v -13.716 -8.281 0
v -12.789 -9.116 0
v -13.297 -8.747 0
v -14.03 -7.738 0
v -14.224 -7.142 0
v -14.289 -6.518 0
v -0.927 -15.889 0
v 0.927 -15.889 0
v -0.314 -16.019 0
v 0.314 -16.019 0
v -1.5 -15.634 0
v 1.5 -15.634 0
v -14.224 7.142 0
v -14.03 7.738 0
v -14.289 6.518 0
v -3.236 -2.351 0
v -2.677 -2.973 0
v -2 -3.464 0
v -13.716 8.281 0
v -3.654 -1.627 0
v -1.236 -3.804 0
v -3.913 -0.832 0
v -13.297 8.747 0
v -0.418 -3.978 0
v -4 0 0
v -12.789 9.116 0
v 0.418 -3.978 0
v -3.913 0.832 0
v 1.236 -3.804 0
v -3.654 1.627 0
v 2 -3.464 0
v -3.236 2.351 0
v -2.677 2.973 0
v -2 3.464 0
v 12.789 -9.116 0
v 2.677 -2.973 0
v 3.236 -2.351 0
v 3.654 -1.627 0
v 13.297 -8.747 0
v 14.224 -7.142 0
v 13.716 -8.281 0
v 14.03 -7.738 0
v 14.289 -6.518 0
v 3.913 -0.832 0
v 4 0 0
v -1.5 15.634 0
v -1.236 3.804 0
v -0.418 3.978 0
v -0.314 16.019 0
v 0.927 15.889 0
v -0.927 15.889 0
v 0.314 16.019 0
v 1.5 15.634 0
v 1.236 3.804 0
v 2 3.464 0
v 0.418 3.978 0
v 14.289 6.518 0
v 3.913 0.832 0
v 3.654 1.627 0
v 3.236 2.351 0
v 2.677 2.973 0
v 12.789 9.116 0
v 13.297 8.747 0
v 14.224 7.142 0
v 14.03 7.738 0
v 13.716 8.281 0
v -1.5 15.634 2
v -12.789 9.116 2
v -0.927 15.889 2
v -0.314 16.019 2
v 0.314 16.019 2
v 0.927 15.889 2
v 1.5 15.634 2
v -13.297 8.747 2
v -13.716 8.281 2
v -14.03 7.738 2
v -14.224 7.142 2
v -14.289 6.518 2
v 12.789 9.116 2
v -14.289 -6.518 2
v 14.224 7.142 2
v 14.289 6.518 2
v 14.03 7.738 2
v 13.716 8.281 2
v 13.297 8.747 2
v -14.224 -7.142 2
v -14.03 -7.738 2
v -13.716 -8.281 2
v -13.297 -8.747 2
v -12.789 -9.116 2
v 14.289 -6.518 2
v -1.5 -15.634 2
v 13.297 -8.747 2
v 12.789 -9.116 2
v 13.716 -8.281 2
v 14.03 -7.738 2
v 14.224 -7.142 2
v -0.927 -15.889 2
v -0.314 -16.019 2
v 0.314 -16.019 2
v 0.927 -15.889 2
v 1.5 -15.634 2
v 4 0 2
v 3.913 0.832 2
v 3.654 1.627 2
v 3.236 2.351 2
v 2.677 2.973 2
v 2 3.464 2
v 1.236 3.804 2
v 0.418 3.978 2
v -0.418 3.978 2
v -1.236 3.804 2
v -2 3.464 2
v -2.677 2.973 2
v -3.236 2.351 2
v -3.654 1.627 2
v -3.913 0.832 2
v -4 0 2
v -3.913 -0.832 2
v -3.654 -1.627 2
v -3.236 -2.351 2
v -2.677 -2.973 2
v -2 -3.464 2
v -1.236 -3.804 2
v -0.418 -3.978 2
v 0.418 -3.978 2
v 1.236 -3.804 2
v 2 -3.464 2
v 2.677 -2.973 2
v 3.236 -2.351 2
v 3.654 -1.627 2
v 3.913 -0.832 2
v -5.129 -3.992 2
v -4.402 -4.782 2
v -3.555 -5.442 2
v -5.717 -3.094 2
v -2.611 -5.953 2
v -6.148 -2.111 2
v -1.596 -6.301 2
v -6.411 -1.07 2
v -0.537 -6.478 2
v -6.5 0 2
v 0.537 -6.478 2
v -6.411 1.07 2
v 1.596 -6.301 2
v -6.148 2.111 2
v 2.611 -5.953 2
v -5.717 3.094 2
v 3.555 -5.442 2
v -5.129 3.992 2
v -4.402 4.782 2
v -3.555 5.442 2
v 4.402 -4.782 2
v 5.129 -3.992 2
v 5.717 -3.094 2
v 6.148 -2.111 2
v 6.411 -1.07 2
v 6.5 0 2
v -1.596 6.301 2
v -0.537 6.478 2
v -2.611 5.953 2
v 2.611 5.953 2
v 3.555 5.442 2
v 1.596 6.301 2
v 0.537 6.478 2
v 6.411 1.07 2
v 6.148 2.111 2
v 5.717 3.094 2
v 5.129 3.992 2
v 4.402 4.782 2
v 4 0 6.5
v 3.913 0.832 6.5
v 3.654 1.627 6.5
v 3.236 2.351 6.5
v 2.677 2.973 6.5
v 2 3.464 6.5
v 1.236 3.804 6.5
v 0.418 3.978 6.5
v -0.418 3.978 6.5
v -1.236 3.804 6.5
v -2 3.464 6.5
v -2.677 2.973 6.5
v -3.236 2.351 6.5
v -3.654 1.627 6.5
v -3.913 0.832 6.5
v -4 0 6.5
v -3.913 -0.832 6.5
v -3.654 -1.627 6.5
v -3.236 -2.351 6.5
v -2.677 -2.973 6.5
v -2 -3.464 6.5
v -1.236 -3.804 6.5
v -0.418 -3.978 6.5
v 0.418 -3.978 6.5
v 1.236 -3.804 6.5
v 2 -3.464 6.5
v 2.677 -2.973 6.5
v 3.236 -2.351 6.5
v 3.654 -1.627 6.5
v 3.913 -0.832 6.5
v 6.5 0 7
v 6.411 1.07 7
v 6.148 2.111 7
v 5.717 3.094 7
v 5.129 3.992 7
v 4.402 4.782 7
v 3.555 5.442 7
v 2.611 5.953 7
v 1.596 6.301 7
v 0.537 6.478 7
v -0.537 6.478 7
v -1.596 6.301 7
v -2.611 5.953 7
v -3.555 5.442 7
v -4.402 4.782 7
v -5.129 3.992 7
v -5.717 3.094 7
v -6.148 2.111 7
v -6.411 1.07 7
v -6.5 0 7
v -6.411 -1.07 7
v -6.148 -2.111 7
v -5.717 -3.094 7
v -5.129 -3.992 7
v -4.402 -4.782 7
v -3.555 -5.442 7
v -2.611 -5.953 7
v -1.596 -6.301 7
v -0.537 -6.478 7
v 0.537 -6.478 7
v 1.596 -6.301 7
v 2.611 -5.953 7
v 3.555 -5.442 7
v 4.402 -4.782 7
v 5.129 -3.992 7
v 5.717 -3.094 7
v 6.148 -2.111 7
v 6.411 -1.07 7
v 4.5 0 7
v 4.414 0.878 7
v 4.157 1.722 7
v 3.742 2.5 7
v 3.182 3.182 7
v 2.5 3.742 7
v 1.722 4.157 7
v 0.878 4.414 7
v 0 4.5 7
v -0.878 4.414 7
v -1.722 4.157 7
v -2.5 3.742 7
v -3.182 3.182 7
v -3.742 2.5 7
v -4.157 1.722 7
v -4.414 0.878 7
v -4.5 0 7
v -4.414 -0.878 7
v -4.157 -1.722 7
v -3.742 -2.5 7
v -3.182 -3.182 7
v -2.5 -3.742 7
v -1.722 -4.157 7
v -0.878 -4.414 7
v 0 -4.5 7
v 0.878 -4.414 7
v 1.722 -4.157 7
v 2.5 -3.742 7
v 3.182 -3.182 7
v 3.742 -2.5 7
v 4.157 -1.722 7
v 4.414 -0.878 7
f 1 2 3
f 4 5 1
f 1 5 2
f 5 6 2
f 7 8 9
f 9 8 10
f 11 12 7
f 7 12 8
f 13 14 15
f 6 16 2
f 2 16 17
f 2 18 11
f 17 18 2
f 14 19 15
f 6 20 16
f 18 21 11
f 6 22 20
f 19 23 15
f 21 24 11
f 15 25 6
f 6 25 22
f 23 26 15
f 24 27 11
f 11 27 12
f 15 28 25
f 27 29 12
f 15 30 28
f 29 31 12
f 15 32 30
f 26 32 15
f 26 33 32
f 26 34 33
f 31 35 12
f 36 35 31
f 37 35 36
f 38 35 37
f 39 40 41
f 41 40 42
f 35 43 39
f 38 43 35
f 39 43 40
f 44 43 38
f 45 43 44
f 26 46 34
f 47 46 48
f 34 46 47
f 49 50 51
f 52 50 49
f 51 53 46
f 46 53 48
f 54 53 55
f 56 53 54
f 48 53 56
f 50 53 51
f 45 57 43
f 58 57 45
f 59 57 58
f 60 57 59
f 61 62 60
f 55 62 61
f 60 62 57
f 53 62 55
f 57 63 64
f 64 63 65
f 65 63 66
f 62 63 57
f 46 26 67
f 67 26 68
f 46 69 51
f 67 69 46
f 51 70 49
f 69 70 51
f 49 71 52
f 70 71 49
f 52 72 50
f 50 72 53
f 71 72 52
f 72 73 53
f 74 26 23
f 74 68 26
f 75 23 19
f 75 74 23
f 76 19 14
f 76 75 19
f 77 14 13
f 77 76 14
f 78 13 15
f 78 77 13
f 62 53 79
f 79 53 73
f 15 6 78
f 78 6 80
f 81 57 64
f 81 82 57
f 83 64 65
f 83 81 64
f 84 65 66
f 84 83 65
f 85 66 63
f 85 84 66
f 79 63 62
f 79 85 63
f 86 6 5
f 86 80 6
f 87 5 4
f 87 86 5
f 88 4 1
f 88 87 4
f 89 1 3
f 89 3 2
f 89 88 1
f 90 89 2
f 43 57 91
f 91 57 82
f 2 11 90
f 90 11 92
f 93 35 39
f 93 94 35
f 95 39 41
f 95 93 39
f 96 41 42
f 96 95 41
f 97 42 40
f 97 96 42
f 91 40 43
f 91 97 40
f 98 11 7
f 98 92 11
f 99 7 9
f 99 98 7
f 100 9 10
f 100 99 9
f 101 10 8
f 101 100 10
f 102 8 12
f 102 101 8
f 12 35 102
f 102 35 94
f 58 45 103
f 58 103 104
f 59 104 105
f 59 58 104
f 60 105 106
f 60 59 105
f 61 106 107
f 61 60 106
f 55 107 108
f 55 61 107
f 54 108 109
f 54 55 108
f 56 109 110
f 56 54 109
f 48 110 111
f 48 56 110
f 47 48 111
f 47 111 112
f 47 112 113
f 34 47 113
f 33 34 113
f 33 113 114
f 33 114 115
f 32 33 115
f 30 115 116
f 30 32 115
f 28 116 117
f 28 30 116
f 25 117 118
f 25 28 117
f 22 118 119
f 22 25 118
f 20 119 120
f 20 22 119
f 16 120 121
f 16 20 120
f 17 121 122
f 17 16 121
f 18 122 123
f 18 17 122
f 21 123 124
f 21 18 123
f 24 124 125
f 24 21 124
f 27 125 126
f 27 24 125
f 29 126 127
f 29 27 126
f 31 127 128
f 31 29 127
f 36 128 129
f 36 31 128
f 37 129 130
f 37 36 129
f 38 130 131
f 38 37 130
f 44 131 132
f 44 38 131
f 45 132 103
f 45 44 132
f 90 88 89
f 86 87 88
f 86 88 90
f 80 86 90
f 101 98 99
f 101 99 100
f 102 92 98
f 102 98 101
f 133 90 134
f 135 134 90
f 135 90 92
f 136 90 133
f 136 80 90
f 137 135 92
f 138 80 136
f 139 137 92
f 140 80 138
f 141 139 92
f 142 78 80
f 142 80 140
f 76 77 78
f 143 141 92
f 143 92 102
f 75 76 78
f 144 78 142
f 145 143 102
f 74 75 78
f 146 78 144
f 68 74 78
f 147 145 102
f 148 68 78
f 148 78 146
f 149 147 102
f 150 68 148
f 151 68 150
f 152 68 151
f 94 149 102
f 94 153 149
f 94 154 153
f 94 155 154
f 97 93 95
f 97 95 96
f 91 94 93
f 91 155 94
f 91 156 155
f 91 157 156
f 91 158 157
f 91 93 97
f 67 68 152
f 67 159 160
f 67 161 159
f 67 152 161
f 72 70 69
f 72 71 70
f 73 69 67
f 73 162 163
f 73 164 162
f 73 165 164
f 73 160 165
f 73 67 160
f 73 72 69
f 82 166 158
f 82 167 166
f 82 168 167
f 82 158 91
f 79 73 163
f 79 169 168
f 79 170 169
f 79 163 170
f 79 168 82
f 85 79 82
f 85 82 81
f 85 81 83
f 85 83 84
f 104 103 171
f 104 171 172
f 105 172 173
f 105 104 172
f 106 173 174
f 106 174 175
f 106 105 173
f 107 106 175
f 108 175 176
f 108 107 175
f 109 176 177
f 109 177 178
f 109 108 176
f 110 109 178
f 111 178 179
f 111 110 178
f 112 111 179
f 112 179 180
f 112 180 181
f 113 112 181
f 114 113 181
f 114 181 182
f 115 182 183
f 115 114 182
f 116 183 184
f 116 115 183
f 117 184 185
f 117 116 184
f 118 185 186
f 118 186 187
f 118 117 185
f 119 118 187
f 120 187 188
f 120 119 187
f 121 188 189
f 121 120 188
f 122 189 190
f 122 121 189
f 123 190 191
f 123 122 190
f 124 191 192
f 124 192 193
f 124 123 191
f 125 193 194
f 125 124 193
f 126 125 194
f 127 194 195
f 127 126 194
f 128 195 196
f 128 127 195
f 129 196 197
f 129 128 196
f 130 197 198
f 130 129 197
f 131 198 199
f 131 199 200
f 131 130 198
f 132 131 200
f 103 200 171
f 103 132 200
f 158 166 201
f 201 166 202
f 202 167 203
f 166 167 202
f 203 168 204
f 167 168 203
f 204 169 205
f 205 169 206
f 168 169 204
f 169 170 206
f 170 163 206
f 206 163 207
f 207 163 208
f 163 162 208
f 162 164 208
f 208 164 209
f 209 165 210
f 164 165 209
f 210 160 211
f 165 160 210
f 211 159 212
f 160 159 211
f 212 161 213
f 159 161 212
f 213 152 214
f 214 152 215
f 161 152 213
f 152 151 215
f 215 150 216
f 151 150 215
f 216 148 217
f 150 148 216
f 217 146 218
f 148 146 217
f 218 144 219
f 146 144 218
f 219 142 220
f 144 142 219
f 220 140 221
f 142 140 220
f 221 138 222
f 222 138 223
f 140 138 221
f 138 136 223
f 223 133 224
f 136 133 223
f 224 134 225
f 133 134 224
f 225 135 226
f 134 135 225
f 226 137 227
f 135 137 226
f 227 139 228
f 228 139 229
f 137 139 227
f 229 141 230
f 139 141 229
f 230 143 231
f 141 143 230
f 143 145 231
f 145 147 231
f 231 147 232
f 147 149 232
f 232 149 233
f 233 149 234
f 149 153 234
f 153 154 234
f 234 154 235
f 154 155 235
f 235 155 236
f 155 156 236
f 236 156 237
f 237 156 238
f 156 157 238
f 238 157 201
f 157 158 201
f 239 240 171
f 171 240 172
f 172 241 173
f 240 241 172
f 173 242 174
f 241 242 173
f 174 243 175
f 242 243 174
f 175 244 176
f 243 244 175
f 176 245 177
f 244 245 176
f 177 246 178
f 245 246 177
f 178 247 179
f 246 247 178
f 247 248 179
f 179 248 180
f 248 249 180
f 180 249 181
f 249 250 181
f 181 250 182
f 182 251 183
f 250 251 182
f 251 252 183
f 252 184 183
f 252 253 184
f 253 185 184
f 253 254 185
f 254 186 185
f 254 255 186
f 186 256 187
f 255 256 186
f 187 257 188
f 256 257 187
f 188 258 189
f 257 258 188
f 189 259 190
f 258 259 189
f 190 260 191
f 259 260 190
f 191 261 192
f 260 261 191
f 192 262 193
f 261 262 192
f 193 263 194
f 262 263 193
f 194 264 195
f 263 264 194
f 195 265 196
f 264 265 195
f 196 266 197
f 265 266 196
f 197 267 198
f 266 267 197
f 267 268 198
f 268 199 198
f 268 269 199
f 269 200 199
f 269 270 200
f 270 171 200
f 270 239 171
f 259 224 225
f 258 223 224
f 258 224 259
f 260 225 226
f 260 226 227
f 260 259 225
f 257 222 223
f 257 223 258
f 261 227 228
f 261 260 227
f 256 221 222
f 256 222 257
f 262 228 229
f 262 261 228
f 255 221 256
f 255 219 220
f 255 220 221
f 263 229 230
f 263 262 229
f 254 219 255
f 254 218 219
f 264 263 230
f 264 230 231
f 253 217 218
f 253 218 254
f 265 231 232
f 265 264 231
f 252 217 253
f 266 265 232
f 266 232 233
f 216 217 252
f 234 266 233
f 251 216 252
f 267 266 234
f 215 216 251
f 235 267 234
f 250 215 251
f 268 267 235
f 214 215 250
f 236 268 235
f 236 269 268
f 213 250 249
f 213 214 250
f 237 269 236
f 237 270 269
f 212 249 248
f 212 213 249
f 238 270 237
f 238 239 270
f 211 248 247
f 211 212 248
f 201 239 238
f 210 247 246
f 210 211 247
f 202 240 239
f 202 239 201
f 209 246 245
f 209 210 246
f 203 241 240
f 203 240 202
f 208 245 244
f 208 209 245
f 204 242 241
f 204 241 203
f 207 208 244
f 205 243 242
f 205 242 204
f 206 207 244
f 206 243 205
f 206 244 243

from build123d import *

# Parameters (mm, degrees)
SKETCH_R      = 4
PAD_DEPTH     = 2
SKETCH001_R   = 6.5
SKETCH001_R_2 = 4
PAD001_DEPTH  = 5
CHAMFER_SIZE  = 0.5
FILLET_R      = 3


with BuildPart() as part:
    # Sketch → Pad (new body)
    with BuildSketch(Plane.XY):
        Polygon((0, 16.5), (-14.289419, 8.25), (-14.289419, -8.25), (0, -16.5), (14.289419, -8.25), (14.289419, 8.25), align=None)
        Circle(SKETCH_R, mode=Mode.SUBTRACT)
    extrude(amount=PAD_DEPTH)

    # Sketch001 (on Face9 of Pad) → Pad001 (join)
    with BuildSketch(Plane.XY.offset(2)):
        Circle(SKETCH001_R)
        Circle(SKETCH001_R_2, mode=Mode.SUBTRACT)
    extrude(amount=PAD001_DEPTH)

    # Chamfer
    chamfer_edges = [part.edges().sort_by_distance(p)[0] for p in [
        (-4, 0, 7),
    ]]
    chamfer(chamfer_edges, length=CHAMFER_SIZE)

    # Fillet
    fillet_edges = [part.edges().sort_by_distance(p)[0] for p in [
        (0, -16.5, 1),
        (14.289419, -8.25, 1),
        (14.289419, 8.25, 1),
        (-14.289419, -8.25, 1),
        (-14.289419, 8.25, 1),
        (0, 16.5, 1),
    ]]
    fillet(fillet_edges, radius=FILLET_R)


solid = part.part
